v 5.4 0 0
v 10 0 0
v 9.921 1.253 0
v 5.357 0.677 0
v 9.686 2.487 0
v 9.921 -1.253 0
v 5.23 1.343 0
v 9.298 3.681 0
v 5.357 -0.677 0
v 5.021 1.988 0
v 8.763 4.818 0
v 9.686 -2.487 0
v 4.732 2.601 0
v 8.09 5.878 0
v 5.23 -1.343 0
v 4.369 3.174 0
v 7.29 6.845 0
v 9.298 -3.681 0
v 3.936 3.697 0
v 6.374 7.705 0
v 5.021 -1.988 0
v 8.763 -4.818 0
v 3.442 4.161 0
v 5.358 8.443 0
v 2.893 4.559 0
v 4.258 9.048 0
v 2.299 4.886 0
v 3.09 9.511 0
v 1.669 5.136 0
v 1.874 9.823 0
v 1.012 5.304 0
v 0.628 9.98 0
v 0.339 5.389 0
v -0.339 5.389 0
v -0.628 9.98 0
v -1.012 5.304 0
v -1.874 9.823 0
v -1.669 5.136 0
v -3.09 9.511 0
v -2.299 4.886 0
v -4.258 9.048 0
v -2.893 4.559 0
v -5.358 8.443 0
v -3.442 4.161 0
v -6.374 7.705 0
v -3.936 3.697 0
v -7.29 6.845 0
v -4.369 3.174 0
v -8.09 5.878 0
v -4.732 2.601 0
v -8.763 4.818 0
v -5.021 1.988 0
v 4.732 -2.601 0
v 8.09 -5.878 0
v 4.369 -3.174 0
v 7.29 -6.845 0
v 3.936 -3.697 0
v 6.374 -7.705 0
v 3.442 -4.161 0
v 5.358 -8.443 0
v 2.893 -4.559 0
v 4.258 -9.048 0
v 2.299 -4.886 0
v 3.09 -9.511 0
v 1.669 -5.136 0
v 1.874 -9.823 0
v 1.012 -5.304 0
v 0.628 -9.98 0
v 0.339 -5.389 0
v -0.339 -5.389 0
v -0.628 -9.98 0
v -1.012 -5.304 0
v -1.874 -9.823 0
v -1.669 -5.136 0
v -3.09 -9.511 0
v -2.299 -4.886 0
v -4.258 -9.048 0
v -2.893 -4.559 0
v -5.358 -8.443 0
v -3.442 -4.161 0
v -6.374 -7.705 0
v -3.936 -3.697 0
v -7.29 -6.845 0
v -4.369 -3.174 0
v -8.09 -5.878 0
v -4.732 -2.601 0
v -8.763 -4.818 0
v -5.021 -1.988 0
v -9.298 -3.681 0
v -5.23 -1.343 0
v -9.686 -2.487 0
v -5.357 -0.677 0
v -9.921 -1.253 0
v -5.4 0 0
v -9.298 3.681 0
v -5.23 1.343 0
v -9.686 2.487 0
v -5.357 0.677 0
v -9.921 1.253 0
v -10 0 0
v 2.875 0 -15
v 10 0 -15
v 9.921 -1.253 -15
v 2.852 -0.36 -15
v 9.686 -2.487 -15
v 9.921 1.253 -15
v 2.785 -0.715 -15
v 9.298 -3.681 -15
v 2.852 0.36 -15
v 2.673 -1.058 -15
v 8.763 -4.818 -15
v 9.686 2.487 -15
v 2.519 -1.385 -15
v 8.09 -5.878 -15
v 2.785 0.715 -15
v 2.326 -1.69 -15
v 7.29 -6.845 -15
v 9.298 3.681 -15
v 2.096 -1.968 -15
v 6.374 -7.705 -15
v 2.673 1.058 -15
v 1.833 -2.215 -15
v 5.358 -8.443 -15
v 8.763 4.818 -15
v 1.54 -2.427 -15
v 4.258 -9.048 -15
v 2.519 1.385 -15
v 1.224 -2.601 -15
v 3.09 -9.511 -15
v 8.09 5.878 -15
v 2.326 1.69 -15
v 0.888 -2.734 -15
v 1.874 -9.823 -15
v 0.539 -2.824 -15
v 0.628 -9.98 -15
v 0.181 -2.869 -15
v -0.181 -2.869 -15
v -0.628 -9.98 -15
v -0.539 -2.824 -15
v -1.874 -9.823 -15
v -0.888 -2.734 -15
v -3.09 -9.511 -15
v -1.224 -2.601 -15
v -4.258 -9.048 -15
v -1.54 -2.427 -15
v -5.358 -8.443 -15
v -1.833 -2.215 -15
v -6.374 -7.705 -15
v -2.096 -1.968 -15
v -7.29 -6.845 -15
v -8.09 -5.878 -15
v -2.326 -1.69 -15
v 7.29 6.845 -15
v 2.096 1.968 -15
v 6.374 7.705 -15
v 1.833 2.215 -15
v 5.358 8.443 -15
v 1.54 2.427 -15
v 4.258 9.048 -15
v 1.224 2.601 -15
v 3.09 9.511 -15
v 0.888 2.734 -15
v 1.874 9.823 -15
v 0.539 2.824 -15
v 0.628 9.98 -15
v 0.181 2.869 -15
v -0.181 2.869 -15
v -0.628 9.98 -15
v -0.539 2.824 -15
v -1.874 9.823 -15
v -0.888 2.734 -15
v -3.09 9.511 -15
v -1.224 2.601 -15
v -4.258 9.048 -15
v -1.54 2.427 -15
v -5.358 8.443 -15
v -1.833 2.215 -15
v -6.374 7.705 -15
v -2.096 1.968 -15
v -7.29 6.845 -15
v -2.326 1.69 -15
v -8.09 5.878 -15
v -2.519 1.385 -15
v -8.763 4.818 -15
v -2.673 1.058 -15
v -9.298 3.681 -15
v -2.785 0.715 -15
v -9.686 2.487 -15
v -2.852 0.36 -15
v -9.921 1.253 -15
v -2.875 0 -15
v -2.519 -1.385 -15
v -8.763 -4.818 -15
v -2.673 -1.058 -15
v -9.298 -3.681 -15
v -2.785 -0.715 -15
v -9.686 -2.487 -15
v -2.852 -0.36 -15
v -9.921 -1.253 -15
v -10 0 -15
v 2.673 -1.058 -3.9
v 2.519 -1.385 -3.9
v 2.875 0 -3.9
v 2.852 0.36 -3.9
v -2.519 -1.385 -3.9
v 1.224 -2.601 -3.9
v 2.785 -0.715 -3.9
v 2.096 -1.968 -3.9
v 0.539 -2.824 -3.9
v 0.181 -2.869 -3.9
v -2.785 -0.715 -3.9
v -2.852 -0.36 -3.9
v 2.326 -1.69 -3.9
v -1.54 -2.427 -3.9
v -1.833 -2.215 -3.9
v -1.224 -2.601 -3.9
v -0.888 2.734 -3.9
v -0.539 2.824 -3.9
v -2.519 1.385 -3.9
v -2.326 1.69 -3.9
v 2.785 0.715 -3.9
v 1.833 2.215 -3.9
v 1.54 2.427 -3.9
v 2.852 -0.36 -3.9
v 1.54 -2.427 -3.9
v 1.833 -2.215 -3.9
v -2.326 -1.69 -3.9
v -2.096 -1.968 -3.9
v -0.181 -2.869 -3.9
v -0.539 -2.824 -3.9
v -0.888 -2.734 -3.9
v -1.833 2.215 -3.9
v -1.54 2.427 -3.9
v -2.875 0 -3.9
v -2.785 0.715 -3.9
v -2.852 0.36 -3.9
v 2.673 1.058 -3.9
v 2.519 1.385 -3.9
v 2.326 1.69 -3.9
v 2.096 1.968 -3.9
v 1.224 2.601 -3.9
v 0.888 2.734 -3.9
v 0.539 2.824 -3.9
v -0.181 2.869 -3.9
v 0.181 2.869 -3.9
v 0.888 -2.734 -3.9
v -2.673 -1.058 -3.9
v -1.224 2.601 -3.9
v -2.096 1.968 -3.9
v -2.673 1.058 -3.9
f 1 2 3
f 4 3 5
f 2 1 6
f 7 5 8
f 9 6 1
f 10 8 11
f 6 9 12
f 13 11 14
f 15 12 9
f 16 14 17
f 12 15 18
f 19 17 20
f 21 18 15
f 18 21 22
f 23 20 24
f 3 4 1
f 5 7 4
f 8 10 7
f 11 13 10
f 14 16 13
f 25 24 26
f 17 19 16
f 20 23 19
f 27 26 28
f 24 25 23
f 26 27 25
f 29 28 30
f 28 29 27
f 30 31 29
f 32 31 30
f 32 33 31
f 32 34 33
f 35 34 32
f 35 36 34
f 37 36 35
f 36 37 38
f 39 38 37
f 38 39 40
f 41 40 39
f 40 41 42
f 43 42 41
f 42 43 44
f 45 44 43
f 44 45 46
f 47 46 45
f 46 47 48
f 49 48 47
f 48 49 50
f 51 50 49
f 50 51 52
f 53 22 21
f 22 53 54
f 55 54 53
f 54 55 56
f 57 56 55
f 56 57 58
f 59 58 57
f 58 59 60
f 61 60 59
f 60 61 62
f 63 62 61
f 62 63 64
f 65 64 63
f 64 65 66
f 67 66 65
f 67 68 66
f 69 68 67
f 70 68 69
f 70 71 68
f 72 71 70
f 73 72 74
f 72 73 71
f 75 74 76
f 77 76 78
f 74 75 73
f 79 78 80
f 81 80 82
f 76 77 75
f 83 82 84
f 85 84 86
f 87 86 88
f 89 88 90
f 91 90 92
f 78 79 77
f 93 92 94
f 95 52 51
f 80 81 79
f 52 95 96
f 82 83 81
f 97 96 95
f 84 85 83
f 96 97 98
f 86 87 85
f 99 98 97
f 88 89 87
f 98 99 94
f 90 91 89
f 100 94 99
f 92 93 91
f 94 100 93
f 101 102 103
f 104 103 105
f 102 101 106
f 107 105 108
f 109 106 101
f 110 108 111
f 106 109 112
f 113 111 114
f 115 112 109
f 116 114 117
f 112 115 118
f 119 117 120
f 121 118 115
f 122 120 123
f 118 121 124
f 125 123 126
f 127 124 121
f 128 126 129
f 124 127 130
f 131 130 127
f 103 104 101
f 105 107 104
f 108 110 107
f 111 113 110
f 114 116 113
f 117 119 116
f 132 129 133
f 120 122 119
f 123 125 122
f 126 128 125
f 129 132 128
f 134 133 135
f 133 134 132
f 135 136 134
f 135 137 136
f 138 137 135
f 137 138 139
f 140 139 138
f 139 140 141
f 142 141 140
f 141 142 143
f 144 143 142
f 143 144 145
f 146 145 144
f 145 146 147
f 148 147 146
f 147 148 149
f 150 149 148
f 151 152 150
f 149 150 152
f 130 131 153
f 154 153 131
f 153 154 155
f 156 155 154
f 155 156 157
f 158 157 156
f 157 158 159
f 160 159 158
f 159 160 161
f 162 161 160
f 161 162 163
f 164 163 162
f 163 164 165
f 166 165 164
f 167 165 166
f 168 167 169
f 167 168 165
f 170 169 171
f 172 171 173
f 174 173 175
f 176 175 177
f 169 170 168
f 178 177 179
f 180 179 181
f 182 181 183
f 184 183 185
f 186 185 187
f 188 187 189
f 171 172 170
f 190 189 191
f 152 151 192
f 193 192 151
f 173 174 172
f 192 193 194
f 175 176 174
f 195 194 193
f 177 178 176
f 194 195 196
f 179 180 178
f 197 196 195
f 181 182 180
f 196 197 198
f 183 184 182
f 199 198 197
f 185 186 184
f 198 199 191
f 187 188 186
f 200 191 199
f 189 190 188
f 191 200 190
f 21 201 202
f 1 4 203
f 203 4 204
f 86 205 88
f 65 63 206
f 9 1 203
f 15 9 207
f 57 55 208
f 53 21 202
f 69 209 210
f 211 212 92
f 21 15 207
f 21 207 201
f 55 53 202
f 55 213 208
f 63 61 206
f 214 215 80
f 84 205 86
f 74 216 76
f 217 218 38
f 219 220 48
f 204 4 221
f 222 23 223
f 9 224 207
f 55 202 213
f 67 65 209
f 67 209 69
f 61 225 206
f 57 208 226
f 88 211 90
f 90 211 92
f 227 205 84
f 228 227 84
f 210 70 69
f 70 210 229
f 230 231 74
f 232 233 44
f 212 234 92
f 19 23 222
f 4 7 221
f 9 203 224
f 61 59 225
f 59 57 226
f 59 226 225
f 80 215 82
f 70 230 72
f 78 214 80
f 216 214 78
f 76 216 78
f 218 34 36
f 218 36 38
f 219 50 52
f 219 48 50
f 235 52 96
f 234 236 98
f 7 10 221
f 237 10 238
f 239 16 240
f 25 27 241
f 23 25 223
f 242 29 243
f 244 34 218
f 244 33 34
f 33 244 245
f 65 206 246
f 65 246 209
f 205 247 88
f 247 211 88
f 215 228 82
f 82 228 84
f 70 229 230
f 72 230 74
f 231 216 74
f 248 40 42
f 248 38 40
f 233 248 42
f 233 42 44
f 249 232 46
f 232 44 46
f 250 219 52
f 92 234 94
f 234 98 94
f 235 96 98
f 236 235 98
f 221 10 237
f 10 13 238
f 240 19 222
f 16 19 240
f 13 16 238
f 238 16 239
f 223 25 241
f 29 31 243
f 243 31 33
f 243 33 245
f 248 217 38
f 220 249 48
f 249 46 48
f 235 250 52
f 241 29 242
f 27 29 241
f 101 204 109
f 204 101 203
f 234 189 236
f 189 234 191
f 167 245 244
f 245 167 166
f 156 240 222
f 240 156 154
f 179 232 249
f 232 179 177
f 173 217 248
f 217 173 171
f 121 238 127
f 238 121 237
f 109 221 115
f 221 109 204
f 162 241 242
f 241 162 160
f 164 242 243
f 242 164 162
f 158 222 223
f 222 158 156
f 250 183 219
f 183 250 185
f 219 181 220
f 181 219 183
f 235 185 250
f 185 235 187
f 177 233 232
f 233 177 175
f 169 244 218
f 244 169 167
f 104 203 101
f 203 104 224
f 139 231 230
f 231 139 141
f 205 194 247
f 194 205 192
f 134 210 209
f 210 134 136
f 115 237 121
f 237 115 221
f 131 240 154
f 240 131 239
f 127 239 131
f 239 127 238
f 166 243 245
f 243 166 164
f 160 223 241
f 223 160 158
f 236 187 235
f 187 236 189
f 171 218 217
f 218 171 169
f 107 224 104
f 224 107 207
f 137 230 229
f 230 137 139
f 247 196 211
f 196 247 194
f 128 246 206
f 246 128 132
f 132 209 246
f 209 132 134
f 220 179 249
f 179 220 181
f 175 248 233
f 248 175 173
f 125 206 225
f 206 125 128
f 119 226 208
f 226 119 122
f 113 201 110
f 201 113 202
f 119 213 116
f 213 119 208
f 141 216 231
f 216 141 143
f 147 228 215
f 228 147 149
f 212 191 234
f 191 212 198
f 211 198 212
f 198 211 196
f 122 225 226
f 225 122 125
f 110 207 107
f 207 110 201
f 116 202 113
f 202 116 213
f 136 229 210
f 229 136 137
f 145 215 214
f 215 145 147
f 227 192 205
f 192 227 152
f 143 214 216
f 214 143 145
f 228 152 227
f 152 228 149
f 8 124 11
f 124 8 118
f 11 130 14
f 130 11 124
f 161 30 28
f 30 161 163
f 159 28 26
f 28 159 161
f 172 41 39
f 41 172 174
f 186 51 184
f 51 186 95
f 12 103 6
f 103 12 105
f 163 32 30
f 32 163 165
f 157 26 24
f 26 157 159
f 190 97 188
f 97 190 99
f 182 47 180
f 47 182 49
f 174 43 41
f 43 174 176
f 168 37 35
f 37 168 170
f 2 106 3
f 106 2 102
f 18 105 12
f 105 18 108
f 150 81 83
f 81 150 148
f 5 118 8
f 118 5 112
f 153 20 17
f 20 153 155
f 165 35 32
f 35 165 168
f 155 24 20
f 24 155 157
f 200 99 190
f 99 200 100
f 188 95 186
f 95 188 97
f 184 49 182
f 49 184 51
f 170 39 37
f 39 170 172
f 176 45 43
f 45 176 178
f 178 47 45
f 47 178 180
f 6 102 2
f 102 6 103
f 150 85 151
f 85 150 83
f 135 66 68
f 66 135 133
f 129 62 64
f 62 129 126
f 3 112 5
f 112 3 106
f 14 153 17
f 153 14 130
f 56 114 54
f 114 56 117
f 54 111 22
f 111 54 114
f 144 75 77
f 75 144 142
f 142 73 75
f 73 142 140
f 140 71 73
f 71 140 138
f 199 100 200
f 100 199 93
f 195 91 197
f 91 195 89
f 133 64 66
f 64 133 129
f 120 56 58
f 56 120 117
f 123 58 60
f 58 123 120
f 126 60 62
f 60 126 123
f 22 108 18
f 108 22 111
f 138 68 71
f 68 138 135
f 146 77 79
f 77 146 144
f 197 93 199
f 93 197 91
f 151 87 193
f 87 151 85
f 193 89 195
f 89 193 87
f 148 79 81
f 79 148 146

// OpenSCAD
$fn = 50;


difference() {
	union() {
		translate(v = [0, 0, -15.0000000000]) {
			cylinder(h = 15, r = 10.0000000000);
		}
		cylinder(h = 0, r = 20.0000000000);
	}
	union() {
		translate(v = [0, 0, 0]) {
			rotate(a = [0, 0, 0]) {
				difference() {
					union() {
						#translate(v = [0, 0, -15.0000000000]) {
							cylinder(h = 15, r = 2.6000000000);
						}
						#translate(v = [0, 0, -3.9000000000]) {
							cylinder(h = 3.9000000000, r1 = 2.8750000000, r2 = 5.4000000000);
						}
						#translate(v = [0, 0, -15.0000000000]) {
							cylinder(h = 15, r = 2.8750000000);
						}
						#translate(v = [0, 0, -15.0000000000]) {
							cylinder(h = 15, r = 2.6000000000);
						}
					}
					union();
				}
			}
		}
	}
}
